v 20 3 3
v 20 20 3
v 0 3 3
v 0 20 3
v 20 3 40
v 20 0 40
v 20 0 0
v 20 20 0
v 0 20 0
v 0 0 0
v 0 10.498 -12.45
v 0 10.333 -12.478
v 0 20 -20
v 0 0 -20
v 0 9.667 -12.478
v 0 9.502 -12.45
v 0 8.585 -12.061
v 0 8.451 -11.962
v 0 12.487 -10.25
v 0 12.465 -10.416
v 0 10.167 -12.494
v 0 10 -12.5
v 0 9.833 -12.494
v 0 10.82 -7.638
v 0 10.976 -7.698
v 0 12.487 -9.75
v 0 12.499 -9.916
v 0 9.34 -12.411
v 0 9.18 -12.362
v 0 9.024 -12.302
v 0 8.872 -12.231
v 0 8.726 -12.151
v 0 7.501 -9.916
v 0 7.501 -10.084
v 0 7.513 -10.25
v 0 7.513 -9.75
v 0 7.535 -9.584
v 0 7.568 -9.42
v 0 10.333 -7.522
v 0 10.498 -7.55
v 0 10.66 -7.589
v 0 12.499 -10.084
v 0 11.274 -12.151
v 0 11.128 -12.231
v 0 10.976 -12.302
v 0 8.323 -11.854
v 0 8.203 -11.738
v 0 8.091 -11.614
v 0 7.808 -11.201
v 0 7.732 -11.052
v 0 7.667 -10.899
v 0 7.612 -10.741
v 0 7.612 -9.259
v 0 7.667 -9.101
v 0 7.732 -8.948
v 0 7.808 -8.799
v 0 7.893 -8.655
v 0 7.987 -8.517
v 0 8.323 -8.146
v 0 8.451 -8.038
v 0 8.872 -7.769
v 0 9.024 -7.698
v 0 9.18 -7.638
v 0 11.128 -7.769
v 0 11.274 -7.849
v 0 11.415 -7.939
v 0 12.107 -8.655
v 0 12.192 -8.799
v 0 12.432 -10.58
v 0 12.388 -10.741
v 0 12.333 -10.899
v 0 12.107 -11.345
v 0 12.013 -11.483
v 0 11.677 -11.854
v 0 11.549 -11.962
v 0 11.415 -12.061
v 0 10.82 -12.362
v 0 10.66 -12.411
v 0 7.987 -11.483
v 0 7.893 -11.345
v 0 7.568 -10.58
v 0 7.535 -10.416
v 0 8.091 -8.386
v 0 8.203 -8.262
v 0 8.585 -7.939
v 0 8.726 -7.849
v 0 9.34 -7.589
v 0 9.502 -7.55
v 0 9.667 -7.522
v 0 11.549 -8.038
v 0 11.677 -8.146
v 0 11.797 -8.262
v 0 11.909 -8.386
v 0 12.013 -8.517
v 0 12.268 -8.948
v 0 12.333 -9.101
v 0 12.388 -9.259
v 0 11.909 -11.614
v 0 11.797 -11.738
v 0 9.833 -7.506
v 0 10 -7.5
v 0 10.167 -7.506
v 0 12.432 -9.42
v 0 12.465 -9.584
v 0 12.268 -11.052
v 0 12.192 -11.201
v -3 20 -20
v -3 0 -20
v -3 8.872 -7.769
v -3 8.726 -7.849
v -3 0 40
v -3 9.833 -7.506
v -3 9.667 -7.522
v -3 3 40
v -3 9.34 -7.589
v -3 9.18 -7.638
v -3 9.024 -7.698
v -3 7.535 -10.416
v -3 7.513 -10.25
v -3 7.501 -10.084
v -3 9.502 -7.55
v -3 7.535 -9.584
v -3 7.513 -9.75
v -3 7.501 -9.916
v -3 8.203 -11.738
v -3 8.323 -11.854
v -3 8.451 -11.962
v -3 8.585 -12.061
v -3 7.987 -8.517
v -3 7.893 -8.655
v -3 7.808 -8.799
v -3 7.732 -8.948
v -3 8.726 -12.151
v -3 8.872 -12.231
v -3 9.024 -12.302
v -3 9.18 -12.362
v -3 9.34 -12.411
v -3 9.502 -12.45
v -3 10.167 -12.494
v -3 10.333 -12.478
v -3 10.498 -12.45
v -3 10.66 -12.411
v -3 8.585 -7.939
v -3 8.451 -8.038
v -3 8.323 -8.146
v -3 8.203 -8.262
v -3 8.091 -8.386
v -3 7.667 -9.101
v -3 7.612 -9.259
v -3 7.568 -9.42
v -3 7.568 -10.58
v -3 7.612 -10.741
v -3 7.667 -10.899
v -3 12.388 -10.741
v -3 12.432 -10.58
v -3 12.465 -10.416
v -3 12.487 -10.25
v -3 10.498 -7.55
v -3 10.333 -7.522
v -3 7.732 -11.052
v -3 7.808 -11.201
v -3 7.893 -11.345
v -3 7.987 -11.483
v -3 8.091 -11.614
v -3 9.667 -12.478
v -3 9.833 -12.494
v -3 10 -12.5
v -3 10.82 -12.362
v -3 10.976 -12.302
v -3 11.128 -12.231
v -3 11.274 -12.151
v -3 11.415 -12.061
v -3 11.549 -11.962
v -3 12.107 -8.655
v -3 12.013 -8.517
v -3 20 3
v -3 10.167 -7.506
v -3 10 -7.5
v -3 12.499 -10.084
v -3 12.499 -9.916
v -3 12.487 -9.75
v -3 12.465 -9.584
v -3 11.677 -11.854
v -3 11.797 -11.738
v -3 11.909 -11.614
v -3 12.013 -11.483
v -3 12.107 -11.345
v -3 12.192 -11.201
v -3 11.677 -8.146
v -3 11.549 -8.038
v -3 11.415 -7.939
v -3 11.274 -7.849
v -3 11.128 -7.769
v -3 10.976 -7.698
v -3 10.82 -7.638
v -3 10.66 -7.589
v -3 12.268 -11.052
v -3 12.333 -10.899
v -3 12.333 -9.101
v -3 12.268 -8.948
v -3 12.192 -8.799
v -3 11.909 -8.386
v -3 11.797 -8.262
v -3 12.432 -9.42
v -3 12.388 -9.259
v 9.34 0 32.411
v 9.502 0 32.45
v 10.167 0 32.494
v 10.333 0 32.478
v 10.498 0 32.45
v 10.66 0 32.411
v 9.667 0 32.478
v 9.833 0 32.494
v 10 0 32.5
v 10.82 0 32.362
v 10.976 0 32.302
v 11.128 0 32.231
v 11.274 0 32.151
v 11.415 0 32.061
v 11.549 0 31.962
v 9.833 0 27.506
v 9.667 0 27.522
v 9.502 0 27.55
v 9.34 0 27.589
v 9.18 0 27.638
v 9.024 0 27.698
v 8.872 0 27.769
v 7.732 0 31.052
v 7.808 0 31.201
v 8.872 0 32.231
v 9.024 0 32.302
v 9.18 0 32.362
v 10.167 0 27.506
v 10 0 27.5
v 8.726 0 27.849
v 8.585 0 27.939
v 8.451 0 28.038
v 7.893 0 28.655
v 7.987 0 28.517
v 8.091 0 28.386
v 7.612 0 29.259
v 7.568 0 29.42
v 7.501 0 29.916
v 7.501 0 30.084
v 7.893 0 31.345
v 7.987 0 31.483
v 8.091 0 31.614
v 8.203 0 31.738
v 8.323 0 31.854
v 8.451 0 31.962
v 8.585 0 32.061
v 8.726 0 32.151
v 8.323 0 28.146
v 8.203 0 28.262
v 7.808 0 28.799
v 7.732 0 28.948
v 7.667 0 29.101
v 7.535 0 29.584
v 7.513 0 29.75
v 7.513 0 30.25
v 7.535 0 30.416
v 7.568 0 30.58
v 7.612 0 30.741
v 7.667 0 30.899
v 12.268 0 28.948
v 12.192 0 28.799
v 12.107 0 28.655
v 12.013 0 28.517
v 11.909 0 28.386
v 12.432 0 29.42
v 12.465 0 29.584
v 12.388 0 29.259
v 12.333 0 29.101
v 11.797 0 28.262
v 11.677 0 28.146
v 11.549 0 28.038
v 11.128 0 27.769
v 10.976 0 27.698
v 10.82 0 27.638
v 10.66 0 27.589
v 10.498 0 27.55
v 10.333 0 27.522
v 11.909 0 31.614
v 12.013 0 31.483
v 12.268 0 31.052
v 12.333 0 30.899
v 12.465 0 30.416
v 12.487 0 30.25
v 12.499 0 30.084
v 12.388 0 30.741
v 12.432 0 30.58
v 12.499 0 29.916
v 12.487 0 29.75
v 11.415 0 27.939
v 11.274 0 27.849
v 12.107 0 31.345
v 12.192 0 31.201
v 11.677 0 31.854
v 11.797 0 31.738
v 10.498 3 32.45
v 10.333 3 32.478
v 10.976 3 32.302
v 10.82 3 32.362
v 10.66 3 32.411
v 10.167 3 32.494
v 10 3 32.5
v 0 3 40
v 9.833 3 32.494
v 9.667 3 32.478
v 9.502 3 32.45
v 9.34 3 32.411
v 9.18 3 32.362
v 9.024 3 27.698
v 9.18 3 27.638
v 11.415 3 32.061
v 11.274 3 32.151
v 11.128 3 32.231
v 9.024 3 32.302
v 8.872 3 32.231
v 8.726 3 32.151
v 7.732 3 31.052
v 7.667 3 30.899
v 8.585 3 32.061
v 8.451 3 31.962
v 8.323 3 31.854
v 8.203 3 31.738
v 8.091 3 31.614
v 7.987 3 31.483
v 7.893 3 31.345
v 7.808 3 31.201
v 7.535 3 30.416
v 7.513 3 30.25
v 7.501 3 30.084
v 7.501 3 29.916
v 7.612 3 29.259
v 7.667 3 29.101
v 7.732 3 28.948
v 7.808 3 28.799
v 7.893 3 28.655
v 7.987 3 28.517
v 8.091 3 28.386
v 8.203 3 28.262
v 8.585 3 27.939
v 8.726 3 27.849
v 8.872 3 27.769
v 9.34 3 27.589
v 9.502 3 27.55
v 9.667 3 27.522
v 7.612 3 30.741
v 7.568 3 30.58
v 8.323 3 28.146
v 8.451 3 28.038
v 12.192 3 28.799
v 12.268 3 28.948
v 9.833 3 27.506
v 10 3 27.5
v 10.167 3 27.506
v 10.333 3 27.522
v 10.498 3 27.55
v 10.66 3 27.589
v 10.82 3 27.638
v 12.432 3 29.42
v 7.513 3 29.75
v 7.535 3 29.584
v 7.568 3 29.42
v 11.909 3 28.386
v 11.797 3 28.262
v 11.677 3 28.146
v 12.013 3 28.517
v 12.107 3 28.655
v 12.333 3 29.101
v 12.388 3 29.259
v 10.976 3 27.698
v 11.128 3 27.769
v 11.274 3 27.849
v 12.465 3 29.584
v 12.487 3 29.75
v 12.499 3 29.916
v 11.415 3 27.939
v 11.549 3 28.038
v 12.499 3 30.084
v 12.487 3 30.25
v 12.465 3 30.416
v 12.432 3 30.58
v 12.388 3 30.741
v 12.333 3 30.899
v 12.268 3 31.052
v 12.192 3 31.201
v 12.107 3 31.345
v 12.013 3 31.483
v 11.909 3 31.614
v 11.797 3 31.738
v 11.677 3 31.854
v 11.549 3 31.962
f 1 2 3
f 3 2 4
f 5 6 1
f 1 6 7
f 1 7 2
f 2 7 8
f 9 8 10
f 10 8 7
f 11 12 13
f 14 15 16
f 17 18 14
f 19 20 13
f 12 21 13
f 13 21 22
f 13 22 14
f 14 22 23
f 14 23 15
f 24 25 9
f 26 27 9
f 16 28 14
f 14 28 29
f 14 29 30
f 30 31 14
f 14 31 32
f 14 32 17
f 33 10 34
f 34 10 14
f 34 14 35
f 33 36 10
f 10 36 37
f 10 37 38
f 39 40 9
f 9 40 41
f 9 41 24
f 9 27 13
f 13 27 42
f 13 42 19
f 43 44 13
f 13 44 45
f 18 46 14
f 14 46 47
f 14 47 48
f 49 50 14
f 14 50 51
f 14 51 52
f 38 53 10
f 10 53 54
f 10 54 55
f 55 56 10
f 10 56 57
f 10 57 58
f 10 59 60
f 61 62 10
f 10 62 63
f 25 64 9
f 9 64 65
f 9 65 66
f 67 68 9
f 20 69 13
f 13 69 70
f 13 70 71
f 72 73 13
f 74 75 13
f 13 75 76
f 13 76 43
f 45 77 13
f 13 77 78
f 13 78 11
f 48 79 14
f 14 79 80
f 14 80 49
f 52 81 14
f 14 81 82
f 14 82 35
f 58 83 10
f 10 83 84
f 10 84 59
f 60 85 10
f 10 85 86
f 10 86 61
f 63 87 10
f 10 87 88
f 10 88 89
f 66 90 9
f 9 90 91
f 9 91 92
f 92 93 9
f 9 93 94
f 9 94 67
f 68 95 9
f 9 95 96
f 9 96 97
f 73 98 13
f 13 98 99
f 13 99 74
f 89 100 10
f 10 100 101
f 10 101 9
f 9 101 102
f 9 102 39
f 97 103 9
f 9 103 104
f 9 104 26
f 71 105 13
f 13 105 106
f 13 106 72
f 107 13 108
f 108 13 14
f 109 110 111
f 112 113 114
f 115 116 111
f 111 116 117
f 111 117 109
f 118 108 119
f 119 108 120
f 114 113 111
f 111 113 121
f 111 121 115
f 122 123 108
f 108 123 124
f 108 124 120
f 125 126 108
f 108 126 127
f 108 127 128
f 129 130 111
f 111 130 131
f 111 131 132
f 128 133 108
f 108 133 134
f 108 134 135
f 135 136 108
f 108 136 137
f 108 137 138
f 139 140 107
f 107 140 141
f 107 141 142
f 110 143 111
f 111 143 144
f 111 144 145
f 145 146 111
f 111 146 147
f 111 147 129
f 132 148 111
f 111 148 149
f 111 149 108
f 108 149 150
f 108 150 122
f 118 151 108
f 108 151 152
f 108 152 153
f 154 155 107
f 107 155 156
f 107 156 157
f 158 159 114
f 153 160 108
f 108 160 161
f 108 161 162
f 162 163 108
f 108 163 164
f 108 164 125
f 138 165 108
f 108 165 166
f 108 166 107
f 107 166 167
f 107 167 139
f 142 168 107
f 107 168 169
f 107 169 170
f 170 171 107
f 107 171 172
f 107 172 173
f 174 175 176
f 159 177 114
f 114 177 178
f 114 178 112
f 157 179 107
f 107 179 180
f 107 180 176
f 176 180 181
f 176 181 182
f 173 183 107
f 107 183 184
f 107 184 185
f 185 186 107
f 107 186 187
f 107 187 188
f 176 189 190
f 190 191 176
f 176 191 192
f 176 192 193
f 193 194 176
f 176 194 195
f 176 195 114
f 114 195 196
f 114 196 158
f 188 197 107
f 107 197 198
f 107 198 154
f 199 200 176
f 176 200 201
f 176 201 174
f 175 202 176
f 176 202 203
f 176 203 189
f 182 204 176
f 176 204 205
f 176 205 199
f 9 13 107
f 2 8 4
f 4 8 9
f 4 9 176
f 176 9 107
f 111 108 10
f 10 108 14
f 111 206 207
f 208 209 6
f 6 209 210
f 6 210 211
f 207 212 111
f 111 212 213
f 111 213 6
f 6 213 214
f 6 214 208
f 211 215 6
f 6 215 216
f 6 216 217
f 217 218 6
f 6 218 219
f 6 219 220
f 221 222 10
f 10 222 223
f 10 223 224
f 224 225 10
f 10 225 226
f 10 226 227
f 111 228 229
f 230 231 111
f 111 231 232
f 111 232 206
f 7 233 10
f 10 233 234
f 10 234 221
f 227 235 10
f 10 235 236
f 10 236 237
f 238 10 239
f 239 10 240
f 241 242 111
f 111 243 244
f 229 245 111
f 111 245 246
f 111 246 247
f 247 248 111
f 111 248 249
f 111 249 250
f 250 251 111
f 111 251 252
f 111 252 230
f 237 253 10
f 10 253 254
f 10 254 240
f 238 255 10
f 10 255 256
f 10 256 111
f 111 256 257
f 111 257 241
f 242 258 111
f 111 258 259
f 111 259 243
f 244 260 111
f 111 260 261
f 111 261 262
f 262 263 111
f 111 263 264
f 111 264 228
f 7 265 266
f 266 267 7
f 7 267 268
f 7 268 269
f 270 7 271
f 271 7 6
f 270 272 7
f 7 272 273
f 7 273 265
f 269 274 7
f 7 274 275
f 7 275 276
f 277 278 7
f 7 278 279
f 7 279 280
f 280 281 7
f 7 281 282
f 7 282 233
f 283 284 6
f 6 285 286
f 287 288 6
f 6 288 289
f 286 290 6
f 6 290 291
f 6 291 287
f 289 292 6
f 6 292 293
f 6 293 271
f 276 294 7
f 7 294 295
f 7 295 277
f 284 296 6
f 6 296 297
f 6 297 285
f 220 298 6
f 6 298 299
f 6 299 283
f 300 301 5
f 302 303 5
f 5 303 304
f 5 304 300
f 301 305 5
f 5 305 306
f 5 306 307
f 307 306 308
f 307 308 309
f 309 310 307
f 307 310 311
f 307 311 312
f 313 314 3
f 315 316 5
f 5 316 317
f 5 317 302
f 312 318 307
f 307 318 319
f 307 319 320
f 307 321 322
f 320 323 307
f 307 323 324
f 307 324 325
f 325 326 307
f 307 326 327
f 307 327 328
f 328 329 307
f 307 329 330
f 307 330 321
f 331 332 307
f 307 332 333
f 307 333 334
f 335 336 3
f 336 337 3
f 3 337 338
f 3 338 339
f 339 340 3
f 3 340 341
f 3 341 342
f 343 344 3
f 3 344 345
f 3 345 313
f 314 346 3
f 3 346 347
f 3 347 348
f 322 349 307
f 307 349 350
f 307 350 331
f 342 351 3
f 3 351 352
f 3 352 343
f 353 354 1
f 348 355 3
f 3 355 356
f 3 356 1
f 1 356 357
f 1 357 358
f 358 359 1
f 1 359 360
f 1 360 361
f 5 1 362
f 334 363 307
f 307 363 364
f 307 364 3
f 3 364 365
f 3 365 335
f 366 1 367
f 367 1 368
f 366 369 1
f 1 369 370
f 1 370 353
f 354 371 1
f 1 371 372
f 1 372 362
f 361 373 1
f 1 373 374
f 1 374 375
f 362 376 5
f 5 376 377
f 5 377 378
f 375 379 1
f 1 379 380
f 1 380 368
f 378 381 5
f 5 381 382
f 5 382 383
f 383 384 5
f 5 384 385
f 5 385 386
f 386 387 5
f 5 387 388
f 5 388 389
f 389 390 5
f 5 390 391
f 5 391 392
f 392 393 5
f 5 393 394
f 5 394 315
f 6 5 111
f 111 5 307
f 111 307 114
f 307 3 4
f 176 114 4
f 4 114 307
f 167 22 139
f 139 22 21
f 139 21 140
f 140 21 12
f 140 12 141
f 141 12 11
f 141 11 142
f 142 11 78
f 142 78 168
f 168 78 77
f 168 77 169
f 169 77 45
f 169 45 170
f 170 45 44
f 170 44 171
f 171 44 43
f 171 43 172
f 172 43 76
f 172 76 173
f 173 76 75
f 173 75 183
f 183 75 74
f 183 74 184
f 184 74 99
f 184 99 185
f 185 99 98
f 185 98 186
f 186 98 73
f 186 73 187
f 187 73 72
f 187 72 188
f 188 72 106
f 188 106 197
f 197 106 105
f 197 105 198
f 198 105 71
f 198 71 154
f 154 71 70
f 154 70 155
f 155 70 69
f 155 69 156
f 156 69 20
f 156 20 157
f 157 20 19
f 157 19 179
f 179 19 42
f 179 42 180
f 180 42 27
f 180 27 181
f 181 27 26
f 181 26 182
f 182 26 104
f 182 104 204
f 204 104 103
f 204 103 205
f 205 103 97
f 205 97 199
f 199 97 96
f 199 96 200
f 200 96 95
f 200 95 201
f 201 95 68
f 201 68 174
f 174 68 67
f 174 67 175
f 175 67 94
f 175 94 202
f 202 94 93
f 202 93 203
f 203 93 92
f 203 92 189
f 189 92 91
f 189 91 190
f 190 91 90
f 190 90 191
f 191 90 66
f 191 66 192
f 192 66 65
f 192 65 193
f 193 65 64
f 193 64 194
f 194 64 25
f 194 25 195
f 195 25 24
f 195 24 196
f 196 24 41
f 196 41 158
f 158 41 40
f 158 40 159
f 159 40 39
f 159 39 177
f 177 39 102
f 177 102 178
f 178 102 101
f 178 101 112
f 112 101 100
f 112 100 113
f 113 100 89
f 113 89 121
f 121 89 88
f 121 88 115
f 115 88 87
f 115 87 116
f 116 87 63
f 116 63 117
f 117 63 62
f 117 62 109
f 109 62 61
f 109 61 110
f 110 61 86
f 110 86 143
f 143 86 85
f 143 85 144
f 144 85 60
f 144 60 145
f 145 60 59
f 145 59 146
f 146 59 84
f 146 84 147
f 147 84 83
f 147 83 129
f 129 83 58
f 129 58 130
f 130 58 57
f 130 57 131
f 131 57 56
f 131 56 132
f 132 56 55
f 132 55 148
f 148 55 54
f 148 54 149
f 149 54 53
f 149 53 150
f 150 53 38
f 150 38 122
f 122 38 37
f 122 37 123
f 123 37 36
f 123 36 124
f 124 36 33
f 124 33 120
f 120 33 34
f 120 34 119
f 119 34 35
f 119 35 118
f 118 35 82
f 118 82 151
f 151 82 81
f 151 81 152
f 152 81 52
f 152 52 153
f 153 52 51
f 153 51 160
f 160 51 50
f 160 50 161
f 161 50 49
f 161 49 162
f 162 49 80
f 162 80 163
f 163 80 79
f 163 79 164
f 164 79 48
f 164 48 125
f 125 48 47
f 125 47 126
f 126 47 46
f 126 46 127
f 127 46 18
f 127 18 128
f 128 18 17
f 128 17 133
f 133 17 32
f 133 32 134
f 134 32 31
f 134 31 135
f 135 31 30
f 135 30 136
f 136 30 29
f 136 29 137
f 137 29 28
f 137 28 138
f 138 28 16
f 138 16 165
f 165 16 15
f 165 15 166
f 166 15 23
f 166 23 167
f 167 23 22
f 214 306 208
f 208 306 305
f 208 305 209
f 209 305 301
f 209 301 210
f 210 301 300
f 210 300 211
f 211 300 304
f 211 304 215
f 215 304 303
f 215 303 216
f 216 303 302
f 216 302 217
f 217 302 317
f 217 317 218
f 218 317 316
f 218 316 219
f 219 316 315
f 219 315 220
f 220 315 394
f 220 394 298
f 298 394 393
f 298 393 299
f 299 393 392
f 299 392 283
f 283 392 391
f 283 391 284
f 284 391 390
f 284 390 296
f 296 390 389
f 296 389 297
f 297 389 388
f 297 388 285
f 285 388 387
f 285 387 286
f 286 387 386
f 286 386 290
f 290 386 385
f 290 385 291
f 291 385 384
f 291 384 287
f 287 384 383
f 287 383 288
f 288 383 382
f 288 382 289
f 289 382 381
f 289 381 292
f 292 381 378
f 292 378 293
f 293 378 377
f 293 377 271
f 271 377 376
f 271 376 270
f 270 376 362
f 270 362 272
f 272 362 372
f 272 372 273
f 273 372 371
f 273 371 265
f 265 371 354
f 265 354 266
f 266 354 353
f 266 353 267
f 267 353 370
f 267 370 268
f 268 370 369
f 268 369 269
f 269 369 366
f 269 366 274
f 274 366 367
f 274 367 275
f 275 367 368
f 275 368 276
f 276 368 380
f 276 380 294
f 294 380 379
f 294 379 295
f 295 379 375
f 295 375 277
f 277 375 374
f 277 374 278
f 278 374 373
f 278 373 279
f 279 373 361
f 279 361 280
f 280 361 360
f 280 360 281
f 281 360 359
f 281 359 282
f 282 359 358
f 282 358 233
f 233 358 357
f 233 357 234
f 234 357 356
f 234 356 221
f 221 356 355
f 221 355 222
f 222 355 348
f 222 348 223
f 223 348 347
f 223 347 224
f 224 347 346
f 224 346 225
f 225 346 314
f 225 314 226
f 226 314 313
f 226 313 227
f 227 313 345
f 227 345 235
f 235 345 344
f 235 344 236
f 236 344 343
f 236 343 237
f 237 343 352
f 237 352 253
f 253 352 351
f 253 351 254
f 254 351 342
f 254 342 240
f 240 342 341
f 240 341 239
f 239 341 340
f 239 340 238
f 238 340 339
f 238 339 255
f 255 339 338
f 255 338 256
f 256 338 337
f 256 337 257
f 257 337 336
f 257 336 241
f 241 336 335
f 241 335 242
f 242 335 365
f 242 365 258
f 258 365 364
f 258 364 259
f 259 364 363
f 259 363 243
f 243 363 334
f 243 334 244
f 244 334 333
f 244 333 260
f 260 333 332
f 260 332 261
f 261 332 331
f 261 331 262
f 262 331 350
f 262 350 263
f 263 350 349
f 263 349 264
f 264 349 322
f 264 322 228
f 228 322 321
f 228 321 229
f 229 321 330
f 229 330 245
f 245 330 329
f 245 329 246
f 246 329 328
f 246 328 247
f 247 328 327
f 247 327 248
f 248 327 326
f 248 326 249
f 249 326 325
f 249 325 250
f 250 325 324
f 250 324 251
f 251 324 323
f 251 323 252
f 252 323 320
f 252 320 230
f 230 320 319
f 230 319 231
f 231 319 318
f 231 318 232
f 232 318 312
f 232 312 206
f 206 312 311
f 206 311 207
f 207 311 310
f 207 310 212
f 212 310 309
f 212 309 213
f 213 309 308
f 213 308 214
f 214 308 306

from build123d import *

# Parameters (mm, degrees)
SKETCH1_W           = 3
SKETCH1_H           = 20
BOSS_EXTRUDE1_DEPTH = 20
SKETCH3_W           = 20
SKETCH3_H           = 40
BOSS_EXTRUDE2_DEPTH = 3
BOSS_EXTRUDE3_DEPTH = 3
SKETCH5_R           = 2.5
CUT_EXTRUDE1_DEPTH  = 3
SKETCH6_R           = 2.5
CUT_EXTRUDE2_DEPTH  = 3


with BuildPart() as part:
    # Sketch1 → Boss-Extrude1 (new body)
    with BuildSketch(Plane(origin=(0, 0, 0), x_dir=(1, 0, 0), z_dir=(0, 1, 0))):
        Polygon((20, 0), (0, 0), (-3, 0), (-3, -3), (20, -3), align=None)
        with Locations((-1.5, 10)):
            Rectangle(SKETCH1_W, SKETCH1_H)
    extrude(amount=BOSS_EXTRUDE1_DEPTH)

    # Sketch3 → Boss-Extrude2 (add)
    with BuildSketch(Plane.XZ):
        with Locations((10, 20)):
            Rectangle(SKETCH3_W, SKETCH3_H)
    extrude(amount=-BOSS_EXTRUDE2_DEPTH)

    # Sketch4 → Boss-Extrude3 (add)
    with BuildSketch(Plane.ZY.offset(3)):
        Polygon((3, 20), (3, 0), (40, 0), (40, 3), align=None)
    extrude(amount=-BOSS_EXTRUDE3_DEPTH)

    # Sketch5 → Cut-Extrude1 (cut)
    with BuildSketch(Plane(origin=(0, 0, 0), x_dir=(0, 0, -1), z_dir=(1, 0, 0))):
        with Locations((10, 10)):
            Circle(SKETCH5_R)
    extrude(amount=-CUT_EXTRUDE1_DEPTH, mode=Mode.SUBTRACT)

    # Sketch6 → Cut-Extrude2 (cut)
    with BuildSketch(Plane(origin=(0, 3, 0), x_dir=(1, 0, 0), z_dir=(0, 1, 0))):
        with Locations((10, -30)):
            Circle(SKETCH6_R)
    extrude(amount=-CUT_EXTRUDE2_DEPTH, mode=Mode.SUBTRACT)


solid = part.part
